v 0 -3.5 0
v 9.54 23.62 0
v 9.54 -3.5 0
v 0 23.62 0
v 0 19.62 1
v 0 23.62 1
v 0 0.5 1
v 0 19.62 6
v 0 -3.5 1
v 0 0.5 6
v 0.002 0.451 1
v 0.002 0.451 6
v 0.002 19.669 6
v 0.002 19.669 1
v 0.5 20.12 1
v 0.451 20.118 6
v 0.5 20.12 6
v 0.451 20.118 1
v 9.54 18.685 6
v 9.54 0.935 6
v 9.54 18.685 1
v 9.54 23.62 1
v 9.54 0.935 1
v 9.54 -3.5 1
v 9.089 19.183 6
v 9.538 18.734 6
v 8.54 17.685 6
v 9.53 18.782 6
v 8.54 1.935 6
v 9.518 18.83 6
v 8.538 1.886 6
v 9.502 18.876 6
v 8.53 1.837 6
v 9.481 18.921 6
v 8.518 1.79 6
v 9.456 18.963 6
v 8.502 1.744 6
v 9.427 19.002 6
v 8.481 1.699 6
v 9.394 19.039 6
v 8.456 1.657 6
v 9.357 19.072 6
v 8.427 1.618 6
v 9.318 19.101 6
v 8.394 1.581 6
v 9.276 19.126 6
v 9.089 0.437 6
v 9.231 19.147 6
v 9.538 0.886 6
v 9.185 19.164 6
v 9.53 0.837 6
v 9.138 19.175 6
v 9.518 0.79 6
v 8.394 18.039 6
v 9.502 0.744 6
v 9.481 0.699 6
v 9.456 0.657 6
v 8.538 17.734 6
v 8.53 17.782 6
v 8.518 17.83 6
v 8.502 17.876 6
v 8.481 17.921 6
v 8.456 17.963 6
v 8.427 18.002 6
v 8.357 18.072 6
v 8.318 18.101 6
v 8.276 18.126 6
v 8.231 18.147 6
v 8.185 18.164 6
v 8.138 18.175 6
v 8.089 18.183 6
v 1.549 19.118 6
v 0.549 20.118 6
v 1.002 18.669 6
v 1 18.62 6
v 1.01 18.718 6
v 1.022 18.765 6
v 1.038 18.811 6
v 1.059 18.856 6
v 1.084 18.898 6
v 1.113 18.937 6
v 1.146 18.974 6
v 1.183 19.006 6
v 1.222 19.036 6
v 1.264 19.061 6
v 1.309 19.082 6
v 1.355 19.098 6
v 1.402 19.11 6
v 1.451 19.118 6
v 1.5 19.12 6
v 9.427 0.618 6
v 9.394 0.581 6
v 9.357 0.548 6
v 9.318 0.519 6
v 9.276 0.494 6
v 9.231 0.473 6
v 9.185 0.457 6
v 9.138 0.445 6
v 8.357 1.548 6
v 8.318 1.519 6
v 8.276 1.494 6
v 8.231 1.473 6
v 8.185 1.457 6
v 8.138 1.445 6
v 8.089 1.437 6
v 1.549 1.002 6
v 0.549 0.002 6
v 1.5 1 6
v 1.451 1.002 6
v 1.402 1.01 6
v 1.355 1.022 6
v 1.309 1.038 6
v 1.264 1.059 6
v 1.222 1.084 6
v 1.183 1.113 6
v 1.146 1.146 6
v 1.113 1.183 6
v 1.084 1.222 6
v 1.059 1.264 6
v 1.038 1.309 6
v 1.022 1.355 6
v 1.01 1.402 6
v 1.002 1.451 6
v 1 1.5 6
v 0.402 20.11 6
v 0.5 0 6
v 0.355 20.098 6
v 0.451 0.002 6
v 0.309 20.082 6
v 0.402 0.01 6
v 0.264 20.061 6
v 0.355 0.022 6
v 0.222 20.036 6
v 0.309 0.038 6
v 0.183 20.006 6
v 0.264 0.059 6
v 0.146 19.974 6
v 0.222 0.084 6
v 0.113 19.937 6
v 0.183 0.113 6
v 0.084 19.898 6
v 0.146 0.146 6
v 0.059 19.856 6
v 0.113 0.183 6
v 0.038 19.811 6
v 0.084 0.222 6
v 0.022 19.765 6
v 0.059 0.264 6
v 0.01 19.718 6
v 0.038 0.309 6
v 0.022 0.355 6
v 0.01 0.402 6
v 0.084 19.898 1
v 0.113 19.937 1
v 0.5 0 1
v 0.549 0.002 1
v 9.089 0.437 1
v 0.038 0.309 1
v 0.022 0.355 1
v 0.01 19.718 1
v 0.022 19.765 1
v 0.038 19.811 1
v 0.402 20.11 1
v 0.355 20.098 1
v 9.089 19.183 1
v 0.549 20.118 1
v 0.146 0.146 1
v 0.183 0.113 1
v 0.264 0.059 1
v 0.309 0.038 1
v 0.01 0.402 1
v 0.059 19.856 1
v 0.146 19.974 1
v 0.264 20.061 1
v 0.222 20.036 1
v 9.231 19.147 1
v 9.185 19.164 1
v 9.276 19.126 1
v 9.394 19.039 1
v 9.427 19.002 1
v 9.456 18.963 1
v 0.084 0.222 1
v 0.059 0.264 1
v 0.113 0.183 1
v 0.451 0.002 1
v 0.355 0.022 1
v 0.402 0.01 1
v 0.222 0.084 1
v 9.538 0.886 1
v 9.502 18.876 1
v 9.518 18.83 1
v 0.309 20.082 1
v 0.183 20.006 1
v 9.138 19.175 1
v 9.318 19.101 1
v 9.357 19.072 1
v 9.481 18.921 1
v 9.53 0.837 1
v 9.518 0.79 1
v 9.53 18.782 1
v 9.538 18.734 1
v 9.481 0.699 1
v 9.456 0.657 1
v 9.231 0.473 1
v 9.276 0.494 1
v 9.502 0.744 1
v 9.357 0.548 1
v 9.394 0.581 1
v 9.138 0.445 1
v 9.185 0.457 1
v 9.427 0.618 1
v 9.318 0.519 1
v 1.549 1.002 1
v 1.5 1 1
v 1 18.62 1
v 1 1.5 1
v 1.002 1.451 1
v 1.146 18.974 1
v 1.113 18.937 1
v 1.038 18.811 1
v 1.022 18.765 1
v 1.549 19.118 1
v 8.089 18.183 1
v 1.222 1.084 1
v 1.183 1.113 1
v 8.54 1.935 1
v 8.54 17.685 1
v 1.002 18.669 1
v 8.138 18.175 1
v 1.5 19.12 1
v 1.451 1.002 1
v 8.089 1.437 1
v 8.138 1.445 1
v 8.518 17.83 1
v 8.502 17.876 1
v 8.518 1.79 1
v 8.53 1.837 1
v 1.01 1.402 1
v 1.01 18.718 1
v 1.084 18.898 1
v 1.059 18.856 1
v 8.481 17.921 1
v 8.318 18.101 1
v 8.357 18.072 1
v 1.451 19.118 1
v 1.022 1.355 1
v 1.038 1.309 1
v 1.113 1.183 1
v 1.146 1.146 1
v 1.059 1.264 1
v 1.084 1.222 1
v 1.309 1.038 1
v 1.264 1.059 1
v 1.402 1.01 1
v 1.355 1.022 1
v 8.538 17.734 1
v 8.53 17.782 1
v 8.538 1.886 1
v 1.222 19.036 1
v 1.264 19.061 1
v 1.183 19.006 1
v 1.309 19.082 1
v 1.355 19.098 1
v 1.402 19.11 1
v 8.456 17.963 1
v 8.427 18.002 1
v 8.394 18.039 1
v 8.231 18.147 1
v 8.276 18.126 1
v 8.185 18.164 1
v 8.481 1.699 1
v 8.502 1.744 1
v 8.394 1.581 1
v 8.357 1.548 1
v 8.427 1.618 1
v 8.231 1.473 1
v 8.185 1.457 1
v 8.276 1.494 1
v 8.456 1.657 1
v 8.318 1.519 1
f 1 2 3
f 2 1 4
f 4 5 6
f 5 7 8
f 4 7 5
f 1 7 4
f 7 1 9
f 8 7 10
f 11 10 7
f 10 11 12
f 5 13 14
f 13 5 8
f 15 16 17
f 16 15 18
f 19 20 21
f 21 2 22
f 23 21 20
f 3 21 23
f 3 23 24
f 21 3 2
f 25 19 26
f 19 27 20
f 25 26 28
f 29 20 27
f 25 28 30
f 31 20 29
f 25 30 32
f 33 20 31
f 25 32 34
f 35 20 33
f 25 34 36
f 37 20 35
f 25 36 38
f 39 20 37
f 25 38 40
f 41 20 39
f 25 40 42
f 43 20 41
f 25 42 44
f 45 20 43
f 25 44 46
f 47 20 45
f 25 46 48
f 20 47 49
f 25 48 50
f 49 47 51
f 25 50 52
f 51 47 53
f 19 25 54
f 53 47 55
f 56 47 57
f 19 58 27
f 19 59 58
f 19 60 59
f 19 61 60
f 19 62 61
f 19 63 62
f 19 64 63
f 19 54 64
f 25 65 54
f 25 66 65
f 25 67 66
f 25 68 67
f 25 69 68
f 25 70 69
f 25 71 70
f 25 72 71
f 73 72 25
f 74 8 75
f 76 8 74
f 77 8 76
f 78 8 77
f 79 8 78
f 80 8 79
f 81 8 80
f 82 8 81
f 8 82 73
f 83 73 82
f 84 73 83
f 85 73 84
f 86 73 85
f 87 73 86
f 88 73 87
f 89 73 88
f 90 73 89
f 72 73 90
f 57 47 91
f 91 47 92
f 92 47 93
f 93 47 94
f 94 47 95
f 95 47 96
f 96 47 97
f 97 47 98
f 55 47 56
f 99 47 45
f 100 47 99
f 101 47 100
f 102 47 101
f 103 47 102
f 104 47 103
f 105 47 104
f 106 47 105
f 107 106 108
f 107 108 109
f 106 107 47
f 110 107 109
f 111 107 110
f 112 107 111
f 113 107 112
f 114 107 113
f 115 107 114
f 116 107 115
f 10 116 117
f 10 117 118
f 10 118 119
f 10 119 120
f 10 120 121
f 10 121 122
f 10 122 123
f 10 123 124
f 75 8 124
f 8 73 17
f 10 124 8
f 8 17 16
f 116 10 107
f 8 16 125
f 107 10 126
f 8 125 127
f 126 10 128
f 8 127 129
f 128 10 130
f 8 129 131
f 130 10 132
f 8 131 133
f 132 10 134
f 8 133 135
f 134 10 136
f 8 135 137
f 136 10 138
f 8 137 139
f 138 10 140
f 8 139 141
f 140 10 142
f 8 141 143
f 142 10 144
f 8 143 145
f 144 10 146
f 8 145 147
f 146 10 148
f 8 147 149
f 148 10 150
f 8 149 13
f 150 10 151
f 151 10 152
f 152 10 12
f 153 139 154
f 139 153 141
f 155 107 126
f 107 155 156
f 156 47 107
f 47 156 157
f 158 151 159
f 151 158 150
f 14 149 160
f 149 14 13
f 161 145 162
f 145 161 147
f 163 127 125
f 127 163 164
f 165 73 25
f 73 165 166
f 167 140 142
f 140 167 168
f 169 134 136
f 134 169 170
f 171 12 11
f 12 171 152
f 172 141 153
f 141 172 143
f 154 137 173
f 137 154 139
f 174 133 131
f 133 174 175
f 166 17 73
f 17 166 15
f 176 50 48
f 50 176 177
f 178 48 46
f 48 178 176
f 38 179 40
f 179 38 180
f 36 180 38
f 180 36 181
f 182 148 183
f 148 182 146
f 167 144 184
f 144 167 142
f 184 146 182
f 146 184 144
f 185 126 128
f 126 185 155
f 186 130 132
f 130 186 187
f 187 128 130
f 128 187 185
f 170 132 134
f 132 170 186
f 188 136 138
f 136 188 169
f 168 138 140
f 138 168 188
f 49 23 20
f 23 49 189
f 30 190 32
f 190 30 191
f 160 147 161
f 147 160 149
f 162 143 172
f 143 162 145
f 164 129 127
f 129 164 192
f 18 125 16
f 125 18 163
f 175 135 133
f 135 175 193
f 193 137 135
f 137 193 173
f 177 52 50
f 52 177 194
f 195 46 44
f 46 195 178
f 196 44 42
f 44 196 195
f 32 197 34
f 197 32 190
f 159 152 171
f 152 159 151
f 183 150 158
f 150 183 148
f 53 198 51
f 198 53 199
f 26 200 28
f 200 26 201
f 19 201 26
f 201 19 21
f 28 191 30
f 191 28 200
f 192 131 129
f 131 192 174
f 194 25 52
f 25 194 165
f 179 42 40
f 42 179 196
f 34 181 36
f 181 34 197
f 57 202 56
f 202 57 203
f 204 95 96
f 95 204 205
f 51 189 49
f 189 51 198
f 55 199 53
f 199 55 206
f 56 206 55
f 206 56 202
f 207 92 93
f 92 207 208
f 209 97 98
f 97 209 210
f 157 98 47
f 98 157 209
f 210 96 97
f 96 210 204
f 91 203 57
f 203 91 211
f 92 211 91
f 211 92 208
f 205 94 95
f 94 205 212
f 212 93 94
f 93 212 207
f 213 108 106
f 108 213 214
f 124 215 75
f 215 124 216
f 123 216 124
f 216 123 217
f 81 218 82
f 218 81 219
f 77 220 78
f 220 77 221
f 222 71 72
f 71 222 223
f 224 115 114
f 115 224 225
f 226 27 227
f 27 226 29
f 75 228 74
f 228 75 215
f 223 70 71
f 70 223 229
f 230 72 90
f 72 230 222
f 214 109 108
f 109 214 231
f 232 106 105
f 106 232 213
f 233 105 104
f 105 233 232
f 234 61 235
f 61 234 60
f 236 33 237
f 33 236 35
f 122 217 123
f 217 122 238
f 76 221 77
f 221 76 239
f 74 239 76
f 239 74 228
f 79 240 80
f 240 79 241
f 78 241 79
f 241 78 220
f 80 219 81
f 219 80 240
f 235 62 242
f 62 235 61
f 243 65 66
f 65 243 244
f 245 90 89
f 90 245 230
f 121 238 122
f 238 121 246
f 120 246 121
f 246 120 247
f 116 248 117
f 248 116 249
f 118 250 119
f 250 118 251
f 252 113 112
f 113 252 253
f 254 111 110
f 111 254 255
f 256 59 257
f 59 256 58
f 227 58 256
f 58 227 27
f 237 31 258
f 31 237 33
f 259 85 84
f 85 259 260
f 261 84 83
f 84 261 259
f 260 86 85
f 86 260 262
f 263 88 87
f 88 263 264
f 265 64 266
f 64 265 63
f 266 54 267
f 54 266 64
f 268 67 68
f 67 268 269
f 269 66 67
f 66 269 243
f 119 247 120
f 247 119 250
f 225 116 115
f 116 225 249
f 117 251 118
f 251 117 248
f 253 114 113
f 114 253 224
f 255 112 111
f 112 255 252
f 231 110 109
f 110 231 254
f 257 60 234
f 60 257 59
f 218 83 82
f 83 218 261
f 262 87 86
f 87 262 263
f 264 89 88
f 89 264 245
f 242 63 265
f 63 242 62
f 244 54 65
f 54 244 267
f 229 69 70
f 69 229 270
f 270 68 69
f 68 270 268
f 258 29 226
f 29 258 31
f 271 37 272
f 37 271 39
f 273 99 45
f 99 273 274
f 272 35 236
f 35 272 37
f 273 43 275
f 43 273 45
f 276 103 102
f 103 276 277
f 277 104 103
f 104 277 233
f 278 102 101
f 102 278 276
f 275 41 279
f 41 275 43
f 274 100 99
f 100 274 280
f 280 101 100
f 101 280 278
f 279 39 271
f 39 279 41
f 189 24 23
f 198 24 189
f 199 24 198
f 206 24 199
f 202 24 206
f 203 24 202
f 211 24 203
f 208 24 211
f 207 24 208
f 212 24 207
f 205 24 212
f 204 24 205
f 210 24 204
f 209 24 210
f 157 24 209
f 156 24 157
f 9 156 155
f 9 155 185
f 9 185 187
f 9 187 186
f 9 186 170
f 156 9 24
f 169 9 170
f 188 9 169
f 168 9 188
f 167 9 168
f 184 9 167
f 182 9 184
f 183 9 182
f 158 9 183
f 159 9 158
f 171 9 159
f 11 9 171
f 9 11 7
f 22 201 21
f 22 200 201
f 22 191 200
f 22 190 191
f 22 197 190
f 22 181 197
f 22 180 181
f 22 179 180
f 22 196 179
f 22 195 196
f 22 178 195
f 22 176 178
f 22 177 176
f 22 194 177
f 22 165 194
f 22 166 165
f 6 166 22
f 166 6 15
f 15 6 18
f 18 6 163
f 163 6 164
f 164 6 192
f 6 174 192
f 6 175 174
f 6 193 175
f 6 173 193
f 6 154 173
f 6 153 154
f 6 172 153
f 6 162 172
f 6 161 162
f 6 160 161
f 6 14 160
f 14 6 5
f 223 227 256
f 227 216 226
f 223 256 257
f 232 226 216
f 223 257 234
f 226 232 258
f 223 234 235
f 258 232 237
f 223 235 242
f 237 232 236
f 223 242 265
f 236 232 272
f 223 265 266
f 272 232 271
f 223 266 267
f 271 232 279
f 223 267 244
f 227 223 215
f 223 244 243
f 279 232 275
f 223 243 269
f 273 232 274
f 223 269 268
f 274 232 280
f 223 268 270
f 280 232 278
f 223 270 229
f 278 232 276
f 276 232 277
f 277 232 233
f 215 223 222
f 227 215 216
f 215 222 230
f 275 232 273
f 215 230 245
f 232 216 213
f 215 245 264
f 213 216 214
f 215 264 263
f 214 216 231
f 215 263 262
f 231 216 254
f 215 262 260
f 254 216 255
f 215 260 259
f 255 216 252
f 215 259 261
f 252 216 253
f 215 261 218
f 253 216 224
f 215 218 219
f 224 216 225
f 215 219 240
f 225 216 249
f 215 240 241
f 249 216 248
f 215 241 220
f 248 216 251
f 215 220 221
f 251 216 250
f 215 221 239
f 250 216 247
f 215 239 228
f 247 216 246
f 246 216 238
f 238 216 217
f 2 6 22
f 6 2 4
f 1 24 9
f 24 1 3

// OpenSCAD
module MainShape(cornerRoundness, shortLen, longLen, height, depth, fn)
{
    offset    = cornerRoundness * 1;
    shortLen2 = shortLen - offset;
    longLen2  = longLen  - offset;
    height2   = height   - offset;
    lenDiff   = (longLen2 - shortLen2) / 2; // Difference between length of short and long sides

    hull()
    {
        translate([offset,  offset,              0]) cylinder(r = cornerRoundness, h = depth, $fn = fn);
        translate([offset,  longLen2,            0]) cylinder(r = cornerRoundness, h = depth, $fn = fn);
        translate([height2, lenDiff,             0]) cylinder(r = cornerRoundness, h = depth, $fn = fn);
        translate([height2, shortLen2 + lenDiff, 0]) cylinder(r = cornerRoundness, h = depth, $fn = fn);
    }
}

module DConnectorCover(cornerRoundness = 0.5,
                       shortLen,
                       longLen,
                       height,
                       depth,
                       thickness = 2,
                       screwRadius = 0.5,
                       screwOffset = 0.5,
                       fn = 64)
{
    difference()
    {
        MainShape(cornerRoundness, shortLen + thickness, longLen + thickness, height + thickness, depth, fn);

        translate([thickness / 2, thickness / 2, 0])
        MainShape(cornerRoundness, shortLen, longLen, height, depth, fn);
    }

    offset = (screwRadius + screwOffset) * 9;
    difference()
    {
        translate([0, (offset - thickness) / -2, 0])
        cube([height + thickness, longLen + offset, thickness / 2]);

        // Screw holes
        //translate([height / 2,           screwRadius - screwOffset, -thickness/2]) cylinder(r = screwRadius, h = thickness, $fn = fn);
        //translate([height / 2, longLen + screwRadius + screwOffset, -thickness/2]) cylinder(r = screwRadius, h = thickness, $fn = fn);
    }
}

module DB25Cover()
{
    DConnectorCover(cornerRoundness = 0.5,
                    shortLen = 14.25 + 2,
                    longLen = 16.12 + 2,
                    height = 7.54,
                    depth = 6);
}

DB25Cover();
